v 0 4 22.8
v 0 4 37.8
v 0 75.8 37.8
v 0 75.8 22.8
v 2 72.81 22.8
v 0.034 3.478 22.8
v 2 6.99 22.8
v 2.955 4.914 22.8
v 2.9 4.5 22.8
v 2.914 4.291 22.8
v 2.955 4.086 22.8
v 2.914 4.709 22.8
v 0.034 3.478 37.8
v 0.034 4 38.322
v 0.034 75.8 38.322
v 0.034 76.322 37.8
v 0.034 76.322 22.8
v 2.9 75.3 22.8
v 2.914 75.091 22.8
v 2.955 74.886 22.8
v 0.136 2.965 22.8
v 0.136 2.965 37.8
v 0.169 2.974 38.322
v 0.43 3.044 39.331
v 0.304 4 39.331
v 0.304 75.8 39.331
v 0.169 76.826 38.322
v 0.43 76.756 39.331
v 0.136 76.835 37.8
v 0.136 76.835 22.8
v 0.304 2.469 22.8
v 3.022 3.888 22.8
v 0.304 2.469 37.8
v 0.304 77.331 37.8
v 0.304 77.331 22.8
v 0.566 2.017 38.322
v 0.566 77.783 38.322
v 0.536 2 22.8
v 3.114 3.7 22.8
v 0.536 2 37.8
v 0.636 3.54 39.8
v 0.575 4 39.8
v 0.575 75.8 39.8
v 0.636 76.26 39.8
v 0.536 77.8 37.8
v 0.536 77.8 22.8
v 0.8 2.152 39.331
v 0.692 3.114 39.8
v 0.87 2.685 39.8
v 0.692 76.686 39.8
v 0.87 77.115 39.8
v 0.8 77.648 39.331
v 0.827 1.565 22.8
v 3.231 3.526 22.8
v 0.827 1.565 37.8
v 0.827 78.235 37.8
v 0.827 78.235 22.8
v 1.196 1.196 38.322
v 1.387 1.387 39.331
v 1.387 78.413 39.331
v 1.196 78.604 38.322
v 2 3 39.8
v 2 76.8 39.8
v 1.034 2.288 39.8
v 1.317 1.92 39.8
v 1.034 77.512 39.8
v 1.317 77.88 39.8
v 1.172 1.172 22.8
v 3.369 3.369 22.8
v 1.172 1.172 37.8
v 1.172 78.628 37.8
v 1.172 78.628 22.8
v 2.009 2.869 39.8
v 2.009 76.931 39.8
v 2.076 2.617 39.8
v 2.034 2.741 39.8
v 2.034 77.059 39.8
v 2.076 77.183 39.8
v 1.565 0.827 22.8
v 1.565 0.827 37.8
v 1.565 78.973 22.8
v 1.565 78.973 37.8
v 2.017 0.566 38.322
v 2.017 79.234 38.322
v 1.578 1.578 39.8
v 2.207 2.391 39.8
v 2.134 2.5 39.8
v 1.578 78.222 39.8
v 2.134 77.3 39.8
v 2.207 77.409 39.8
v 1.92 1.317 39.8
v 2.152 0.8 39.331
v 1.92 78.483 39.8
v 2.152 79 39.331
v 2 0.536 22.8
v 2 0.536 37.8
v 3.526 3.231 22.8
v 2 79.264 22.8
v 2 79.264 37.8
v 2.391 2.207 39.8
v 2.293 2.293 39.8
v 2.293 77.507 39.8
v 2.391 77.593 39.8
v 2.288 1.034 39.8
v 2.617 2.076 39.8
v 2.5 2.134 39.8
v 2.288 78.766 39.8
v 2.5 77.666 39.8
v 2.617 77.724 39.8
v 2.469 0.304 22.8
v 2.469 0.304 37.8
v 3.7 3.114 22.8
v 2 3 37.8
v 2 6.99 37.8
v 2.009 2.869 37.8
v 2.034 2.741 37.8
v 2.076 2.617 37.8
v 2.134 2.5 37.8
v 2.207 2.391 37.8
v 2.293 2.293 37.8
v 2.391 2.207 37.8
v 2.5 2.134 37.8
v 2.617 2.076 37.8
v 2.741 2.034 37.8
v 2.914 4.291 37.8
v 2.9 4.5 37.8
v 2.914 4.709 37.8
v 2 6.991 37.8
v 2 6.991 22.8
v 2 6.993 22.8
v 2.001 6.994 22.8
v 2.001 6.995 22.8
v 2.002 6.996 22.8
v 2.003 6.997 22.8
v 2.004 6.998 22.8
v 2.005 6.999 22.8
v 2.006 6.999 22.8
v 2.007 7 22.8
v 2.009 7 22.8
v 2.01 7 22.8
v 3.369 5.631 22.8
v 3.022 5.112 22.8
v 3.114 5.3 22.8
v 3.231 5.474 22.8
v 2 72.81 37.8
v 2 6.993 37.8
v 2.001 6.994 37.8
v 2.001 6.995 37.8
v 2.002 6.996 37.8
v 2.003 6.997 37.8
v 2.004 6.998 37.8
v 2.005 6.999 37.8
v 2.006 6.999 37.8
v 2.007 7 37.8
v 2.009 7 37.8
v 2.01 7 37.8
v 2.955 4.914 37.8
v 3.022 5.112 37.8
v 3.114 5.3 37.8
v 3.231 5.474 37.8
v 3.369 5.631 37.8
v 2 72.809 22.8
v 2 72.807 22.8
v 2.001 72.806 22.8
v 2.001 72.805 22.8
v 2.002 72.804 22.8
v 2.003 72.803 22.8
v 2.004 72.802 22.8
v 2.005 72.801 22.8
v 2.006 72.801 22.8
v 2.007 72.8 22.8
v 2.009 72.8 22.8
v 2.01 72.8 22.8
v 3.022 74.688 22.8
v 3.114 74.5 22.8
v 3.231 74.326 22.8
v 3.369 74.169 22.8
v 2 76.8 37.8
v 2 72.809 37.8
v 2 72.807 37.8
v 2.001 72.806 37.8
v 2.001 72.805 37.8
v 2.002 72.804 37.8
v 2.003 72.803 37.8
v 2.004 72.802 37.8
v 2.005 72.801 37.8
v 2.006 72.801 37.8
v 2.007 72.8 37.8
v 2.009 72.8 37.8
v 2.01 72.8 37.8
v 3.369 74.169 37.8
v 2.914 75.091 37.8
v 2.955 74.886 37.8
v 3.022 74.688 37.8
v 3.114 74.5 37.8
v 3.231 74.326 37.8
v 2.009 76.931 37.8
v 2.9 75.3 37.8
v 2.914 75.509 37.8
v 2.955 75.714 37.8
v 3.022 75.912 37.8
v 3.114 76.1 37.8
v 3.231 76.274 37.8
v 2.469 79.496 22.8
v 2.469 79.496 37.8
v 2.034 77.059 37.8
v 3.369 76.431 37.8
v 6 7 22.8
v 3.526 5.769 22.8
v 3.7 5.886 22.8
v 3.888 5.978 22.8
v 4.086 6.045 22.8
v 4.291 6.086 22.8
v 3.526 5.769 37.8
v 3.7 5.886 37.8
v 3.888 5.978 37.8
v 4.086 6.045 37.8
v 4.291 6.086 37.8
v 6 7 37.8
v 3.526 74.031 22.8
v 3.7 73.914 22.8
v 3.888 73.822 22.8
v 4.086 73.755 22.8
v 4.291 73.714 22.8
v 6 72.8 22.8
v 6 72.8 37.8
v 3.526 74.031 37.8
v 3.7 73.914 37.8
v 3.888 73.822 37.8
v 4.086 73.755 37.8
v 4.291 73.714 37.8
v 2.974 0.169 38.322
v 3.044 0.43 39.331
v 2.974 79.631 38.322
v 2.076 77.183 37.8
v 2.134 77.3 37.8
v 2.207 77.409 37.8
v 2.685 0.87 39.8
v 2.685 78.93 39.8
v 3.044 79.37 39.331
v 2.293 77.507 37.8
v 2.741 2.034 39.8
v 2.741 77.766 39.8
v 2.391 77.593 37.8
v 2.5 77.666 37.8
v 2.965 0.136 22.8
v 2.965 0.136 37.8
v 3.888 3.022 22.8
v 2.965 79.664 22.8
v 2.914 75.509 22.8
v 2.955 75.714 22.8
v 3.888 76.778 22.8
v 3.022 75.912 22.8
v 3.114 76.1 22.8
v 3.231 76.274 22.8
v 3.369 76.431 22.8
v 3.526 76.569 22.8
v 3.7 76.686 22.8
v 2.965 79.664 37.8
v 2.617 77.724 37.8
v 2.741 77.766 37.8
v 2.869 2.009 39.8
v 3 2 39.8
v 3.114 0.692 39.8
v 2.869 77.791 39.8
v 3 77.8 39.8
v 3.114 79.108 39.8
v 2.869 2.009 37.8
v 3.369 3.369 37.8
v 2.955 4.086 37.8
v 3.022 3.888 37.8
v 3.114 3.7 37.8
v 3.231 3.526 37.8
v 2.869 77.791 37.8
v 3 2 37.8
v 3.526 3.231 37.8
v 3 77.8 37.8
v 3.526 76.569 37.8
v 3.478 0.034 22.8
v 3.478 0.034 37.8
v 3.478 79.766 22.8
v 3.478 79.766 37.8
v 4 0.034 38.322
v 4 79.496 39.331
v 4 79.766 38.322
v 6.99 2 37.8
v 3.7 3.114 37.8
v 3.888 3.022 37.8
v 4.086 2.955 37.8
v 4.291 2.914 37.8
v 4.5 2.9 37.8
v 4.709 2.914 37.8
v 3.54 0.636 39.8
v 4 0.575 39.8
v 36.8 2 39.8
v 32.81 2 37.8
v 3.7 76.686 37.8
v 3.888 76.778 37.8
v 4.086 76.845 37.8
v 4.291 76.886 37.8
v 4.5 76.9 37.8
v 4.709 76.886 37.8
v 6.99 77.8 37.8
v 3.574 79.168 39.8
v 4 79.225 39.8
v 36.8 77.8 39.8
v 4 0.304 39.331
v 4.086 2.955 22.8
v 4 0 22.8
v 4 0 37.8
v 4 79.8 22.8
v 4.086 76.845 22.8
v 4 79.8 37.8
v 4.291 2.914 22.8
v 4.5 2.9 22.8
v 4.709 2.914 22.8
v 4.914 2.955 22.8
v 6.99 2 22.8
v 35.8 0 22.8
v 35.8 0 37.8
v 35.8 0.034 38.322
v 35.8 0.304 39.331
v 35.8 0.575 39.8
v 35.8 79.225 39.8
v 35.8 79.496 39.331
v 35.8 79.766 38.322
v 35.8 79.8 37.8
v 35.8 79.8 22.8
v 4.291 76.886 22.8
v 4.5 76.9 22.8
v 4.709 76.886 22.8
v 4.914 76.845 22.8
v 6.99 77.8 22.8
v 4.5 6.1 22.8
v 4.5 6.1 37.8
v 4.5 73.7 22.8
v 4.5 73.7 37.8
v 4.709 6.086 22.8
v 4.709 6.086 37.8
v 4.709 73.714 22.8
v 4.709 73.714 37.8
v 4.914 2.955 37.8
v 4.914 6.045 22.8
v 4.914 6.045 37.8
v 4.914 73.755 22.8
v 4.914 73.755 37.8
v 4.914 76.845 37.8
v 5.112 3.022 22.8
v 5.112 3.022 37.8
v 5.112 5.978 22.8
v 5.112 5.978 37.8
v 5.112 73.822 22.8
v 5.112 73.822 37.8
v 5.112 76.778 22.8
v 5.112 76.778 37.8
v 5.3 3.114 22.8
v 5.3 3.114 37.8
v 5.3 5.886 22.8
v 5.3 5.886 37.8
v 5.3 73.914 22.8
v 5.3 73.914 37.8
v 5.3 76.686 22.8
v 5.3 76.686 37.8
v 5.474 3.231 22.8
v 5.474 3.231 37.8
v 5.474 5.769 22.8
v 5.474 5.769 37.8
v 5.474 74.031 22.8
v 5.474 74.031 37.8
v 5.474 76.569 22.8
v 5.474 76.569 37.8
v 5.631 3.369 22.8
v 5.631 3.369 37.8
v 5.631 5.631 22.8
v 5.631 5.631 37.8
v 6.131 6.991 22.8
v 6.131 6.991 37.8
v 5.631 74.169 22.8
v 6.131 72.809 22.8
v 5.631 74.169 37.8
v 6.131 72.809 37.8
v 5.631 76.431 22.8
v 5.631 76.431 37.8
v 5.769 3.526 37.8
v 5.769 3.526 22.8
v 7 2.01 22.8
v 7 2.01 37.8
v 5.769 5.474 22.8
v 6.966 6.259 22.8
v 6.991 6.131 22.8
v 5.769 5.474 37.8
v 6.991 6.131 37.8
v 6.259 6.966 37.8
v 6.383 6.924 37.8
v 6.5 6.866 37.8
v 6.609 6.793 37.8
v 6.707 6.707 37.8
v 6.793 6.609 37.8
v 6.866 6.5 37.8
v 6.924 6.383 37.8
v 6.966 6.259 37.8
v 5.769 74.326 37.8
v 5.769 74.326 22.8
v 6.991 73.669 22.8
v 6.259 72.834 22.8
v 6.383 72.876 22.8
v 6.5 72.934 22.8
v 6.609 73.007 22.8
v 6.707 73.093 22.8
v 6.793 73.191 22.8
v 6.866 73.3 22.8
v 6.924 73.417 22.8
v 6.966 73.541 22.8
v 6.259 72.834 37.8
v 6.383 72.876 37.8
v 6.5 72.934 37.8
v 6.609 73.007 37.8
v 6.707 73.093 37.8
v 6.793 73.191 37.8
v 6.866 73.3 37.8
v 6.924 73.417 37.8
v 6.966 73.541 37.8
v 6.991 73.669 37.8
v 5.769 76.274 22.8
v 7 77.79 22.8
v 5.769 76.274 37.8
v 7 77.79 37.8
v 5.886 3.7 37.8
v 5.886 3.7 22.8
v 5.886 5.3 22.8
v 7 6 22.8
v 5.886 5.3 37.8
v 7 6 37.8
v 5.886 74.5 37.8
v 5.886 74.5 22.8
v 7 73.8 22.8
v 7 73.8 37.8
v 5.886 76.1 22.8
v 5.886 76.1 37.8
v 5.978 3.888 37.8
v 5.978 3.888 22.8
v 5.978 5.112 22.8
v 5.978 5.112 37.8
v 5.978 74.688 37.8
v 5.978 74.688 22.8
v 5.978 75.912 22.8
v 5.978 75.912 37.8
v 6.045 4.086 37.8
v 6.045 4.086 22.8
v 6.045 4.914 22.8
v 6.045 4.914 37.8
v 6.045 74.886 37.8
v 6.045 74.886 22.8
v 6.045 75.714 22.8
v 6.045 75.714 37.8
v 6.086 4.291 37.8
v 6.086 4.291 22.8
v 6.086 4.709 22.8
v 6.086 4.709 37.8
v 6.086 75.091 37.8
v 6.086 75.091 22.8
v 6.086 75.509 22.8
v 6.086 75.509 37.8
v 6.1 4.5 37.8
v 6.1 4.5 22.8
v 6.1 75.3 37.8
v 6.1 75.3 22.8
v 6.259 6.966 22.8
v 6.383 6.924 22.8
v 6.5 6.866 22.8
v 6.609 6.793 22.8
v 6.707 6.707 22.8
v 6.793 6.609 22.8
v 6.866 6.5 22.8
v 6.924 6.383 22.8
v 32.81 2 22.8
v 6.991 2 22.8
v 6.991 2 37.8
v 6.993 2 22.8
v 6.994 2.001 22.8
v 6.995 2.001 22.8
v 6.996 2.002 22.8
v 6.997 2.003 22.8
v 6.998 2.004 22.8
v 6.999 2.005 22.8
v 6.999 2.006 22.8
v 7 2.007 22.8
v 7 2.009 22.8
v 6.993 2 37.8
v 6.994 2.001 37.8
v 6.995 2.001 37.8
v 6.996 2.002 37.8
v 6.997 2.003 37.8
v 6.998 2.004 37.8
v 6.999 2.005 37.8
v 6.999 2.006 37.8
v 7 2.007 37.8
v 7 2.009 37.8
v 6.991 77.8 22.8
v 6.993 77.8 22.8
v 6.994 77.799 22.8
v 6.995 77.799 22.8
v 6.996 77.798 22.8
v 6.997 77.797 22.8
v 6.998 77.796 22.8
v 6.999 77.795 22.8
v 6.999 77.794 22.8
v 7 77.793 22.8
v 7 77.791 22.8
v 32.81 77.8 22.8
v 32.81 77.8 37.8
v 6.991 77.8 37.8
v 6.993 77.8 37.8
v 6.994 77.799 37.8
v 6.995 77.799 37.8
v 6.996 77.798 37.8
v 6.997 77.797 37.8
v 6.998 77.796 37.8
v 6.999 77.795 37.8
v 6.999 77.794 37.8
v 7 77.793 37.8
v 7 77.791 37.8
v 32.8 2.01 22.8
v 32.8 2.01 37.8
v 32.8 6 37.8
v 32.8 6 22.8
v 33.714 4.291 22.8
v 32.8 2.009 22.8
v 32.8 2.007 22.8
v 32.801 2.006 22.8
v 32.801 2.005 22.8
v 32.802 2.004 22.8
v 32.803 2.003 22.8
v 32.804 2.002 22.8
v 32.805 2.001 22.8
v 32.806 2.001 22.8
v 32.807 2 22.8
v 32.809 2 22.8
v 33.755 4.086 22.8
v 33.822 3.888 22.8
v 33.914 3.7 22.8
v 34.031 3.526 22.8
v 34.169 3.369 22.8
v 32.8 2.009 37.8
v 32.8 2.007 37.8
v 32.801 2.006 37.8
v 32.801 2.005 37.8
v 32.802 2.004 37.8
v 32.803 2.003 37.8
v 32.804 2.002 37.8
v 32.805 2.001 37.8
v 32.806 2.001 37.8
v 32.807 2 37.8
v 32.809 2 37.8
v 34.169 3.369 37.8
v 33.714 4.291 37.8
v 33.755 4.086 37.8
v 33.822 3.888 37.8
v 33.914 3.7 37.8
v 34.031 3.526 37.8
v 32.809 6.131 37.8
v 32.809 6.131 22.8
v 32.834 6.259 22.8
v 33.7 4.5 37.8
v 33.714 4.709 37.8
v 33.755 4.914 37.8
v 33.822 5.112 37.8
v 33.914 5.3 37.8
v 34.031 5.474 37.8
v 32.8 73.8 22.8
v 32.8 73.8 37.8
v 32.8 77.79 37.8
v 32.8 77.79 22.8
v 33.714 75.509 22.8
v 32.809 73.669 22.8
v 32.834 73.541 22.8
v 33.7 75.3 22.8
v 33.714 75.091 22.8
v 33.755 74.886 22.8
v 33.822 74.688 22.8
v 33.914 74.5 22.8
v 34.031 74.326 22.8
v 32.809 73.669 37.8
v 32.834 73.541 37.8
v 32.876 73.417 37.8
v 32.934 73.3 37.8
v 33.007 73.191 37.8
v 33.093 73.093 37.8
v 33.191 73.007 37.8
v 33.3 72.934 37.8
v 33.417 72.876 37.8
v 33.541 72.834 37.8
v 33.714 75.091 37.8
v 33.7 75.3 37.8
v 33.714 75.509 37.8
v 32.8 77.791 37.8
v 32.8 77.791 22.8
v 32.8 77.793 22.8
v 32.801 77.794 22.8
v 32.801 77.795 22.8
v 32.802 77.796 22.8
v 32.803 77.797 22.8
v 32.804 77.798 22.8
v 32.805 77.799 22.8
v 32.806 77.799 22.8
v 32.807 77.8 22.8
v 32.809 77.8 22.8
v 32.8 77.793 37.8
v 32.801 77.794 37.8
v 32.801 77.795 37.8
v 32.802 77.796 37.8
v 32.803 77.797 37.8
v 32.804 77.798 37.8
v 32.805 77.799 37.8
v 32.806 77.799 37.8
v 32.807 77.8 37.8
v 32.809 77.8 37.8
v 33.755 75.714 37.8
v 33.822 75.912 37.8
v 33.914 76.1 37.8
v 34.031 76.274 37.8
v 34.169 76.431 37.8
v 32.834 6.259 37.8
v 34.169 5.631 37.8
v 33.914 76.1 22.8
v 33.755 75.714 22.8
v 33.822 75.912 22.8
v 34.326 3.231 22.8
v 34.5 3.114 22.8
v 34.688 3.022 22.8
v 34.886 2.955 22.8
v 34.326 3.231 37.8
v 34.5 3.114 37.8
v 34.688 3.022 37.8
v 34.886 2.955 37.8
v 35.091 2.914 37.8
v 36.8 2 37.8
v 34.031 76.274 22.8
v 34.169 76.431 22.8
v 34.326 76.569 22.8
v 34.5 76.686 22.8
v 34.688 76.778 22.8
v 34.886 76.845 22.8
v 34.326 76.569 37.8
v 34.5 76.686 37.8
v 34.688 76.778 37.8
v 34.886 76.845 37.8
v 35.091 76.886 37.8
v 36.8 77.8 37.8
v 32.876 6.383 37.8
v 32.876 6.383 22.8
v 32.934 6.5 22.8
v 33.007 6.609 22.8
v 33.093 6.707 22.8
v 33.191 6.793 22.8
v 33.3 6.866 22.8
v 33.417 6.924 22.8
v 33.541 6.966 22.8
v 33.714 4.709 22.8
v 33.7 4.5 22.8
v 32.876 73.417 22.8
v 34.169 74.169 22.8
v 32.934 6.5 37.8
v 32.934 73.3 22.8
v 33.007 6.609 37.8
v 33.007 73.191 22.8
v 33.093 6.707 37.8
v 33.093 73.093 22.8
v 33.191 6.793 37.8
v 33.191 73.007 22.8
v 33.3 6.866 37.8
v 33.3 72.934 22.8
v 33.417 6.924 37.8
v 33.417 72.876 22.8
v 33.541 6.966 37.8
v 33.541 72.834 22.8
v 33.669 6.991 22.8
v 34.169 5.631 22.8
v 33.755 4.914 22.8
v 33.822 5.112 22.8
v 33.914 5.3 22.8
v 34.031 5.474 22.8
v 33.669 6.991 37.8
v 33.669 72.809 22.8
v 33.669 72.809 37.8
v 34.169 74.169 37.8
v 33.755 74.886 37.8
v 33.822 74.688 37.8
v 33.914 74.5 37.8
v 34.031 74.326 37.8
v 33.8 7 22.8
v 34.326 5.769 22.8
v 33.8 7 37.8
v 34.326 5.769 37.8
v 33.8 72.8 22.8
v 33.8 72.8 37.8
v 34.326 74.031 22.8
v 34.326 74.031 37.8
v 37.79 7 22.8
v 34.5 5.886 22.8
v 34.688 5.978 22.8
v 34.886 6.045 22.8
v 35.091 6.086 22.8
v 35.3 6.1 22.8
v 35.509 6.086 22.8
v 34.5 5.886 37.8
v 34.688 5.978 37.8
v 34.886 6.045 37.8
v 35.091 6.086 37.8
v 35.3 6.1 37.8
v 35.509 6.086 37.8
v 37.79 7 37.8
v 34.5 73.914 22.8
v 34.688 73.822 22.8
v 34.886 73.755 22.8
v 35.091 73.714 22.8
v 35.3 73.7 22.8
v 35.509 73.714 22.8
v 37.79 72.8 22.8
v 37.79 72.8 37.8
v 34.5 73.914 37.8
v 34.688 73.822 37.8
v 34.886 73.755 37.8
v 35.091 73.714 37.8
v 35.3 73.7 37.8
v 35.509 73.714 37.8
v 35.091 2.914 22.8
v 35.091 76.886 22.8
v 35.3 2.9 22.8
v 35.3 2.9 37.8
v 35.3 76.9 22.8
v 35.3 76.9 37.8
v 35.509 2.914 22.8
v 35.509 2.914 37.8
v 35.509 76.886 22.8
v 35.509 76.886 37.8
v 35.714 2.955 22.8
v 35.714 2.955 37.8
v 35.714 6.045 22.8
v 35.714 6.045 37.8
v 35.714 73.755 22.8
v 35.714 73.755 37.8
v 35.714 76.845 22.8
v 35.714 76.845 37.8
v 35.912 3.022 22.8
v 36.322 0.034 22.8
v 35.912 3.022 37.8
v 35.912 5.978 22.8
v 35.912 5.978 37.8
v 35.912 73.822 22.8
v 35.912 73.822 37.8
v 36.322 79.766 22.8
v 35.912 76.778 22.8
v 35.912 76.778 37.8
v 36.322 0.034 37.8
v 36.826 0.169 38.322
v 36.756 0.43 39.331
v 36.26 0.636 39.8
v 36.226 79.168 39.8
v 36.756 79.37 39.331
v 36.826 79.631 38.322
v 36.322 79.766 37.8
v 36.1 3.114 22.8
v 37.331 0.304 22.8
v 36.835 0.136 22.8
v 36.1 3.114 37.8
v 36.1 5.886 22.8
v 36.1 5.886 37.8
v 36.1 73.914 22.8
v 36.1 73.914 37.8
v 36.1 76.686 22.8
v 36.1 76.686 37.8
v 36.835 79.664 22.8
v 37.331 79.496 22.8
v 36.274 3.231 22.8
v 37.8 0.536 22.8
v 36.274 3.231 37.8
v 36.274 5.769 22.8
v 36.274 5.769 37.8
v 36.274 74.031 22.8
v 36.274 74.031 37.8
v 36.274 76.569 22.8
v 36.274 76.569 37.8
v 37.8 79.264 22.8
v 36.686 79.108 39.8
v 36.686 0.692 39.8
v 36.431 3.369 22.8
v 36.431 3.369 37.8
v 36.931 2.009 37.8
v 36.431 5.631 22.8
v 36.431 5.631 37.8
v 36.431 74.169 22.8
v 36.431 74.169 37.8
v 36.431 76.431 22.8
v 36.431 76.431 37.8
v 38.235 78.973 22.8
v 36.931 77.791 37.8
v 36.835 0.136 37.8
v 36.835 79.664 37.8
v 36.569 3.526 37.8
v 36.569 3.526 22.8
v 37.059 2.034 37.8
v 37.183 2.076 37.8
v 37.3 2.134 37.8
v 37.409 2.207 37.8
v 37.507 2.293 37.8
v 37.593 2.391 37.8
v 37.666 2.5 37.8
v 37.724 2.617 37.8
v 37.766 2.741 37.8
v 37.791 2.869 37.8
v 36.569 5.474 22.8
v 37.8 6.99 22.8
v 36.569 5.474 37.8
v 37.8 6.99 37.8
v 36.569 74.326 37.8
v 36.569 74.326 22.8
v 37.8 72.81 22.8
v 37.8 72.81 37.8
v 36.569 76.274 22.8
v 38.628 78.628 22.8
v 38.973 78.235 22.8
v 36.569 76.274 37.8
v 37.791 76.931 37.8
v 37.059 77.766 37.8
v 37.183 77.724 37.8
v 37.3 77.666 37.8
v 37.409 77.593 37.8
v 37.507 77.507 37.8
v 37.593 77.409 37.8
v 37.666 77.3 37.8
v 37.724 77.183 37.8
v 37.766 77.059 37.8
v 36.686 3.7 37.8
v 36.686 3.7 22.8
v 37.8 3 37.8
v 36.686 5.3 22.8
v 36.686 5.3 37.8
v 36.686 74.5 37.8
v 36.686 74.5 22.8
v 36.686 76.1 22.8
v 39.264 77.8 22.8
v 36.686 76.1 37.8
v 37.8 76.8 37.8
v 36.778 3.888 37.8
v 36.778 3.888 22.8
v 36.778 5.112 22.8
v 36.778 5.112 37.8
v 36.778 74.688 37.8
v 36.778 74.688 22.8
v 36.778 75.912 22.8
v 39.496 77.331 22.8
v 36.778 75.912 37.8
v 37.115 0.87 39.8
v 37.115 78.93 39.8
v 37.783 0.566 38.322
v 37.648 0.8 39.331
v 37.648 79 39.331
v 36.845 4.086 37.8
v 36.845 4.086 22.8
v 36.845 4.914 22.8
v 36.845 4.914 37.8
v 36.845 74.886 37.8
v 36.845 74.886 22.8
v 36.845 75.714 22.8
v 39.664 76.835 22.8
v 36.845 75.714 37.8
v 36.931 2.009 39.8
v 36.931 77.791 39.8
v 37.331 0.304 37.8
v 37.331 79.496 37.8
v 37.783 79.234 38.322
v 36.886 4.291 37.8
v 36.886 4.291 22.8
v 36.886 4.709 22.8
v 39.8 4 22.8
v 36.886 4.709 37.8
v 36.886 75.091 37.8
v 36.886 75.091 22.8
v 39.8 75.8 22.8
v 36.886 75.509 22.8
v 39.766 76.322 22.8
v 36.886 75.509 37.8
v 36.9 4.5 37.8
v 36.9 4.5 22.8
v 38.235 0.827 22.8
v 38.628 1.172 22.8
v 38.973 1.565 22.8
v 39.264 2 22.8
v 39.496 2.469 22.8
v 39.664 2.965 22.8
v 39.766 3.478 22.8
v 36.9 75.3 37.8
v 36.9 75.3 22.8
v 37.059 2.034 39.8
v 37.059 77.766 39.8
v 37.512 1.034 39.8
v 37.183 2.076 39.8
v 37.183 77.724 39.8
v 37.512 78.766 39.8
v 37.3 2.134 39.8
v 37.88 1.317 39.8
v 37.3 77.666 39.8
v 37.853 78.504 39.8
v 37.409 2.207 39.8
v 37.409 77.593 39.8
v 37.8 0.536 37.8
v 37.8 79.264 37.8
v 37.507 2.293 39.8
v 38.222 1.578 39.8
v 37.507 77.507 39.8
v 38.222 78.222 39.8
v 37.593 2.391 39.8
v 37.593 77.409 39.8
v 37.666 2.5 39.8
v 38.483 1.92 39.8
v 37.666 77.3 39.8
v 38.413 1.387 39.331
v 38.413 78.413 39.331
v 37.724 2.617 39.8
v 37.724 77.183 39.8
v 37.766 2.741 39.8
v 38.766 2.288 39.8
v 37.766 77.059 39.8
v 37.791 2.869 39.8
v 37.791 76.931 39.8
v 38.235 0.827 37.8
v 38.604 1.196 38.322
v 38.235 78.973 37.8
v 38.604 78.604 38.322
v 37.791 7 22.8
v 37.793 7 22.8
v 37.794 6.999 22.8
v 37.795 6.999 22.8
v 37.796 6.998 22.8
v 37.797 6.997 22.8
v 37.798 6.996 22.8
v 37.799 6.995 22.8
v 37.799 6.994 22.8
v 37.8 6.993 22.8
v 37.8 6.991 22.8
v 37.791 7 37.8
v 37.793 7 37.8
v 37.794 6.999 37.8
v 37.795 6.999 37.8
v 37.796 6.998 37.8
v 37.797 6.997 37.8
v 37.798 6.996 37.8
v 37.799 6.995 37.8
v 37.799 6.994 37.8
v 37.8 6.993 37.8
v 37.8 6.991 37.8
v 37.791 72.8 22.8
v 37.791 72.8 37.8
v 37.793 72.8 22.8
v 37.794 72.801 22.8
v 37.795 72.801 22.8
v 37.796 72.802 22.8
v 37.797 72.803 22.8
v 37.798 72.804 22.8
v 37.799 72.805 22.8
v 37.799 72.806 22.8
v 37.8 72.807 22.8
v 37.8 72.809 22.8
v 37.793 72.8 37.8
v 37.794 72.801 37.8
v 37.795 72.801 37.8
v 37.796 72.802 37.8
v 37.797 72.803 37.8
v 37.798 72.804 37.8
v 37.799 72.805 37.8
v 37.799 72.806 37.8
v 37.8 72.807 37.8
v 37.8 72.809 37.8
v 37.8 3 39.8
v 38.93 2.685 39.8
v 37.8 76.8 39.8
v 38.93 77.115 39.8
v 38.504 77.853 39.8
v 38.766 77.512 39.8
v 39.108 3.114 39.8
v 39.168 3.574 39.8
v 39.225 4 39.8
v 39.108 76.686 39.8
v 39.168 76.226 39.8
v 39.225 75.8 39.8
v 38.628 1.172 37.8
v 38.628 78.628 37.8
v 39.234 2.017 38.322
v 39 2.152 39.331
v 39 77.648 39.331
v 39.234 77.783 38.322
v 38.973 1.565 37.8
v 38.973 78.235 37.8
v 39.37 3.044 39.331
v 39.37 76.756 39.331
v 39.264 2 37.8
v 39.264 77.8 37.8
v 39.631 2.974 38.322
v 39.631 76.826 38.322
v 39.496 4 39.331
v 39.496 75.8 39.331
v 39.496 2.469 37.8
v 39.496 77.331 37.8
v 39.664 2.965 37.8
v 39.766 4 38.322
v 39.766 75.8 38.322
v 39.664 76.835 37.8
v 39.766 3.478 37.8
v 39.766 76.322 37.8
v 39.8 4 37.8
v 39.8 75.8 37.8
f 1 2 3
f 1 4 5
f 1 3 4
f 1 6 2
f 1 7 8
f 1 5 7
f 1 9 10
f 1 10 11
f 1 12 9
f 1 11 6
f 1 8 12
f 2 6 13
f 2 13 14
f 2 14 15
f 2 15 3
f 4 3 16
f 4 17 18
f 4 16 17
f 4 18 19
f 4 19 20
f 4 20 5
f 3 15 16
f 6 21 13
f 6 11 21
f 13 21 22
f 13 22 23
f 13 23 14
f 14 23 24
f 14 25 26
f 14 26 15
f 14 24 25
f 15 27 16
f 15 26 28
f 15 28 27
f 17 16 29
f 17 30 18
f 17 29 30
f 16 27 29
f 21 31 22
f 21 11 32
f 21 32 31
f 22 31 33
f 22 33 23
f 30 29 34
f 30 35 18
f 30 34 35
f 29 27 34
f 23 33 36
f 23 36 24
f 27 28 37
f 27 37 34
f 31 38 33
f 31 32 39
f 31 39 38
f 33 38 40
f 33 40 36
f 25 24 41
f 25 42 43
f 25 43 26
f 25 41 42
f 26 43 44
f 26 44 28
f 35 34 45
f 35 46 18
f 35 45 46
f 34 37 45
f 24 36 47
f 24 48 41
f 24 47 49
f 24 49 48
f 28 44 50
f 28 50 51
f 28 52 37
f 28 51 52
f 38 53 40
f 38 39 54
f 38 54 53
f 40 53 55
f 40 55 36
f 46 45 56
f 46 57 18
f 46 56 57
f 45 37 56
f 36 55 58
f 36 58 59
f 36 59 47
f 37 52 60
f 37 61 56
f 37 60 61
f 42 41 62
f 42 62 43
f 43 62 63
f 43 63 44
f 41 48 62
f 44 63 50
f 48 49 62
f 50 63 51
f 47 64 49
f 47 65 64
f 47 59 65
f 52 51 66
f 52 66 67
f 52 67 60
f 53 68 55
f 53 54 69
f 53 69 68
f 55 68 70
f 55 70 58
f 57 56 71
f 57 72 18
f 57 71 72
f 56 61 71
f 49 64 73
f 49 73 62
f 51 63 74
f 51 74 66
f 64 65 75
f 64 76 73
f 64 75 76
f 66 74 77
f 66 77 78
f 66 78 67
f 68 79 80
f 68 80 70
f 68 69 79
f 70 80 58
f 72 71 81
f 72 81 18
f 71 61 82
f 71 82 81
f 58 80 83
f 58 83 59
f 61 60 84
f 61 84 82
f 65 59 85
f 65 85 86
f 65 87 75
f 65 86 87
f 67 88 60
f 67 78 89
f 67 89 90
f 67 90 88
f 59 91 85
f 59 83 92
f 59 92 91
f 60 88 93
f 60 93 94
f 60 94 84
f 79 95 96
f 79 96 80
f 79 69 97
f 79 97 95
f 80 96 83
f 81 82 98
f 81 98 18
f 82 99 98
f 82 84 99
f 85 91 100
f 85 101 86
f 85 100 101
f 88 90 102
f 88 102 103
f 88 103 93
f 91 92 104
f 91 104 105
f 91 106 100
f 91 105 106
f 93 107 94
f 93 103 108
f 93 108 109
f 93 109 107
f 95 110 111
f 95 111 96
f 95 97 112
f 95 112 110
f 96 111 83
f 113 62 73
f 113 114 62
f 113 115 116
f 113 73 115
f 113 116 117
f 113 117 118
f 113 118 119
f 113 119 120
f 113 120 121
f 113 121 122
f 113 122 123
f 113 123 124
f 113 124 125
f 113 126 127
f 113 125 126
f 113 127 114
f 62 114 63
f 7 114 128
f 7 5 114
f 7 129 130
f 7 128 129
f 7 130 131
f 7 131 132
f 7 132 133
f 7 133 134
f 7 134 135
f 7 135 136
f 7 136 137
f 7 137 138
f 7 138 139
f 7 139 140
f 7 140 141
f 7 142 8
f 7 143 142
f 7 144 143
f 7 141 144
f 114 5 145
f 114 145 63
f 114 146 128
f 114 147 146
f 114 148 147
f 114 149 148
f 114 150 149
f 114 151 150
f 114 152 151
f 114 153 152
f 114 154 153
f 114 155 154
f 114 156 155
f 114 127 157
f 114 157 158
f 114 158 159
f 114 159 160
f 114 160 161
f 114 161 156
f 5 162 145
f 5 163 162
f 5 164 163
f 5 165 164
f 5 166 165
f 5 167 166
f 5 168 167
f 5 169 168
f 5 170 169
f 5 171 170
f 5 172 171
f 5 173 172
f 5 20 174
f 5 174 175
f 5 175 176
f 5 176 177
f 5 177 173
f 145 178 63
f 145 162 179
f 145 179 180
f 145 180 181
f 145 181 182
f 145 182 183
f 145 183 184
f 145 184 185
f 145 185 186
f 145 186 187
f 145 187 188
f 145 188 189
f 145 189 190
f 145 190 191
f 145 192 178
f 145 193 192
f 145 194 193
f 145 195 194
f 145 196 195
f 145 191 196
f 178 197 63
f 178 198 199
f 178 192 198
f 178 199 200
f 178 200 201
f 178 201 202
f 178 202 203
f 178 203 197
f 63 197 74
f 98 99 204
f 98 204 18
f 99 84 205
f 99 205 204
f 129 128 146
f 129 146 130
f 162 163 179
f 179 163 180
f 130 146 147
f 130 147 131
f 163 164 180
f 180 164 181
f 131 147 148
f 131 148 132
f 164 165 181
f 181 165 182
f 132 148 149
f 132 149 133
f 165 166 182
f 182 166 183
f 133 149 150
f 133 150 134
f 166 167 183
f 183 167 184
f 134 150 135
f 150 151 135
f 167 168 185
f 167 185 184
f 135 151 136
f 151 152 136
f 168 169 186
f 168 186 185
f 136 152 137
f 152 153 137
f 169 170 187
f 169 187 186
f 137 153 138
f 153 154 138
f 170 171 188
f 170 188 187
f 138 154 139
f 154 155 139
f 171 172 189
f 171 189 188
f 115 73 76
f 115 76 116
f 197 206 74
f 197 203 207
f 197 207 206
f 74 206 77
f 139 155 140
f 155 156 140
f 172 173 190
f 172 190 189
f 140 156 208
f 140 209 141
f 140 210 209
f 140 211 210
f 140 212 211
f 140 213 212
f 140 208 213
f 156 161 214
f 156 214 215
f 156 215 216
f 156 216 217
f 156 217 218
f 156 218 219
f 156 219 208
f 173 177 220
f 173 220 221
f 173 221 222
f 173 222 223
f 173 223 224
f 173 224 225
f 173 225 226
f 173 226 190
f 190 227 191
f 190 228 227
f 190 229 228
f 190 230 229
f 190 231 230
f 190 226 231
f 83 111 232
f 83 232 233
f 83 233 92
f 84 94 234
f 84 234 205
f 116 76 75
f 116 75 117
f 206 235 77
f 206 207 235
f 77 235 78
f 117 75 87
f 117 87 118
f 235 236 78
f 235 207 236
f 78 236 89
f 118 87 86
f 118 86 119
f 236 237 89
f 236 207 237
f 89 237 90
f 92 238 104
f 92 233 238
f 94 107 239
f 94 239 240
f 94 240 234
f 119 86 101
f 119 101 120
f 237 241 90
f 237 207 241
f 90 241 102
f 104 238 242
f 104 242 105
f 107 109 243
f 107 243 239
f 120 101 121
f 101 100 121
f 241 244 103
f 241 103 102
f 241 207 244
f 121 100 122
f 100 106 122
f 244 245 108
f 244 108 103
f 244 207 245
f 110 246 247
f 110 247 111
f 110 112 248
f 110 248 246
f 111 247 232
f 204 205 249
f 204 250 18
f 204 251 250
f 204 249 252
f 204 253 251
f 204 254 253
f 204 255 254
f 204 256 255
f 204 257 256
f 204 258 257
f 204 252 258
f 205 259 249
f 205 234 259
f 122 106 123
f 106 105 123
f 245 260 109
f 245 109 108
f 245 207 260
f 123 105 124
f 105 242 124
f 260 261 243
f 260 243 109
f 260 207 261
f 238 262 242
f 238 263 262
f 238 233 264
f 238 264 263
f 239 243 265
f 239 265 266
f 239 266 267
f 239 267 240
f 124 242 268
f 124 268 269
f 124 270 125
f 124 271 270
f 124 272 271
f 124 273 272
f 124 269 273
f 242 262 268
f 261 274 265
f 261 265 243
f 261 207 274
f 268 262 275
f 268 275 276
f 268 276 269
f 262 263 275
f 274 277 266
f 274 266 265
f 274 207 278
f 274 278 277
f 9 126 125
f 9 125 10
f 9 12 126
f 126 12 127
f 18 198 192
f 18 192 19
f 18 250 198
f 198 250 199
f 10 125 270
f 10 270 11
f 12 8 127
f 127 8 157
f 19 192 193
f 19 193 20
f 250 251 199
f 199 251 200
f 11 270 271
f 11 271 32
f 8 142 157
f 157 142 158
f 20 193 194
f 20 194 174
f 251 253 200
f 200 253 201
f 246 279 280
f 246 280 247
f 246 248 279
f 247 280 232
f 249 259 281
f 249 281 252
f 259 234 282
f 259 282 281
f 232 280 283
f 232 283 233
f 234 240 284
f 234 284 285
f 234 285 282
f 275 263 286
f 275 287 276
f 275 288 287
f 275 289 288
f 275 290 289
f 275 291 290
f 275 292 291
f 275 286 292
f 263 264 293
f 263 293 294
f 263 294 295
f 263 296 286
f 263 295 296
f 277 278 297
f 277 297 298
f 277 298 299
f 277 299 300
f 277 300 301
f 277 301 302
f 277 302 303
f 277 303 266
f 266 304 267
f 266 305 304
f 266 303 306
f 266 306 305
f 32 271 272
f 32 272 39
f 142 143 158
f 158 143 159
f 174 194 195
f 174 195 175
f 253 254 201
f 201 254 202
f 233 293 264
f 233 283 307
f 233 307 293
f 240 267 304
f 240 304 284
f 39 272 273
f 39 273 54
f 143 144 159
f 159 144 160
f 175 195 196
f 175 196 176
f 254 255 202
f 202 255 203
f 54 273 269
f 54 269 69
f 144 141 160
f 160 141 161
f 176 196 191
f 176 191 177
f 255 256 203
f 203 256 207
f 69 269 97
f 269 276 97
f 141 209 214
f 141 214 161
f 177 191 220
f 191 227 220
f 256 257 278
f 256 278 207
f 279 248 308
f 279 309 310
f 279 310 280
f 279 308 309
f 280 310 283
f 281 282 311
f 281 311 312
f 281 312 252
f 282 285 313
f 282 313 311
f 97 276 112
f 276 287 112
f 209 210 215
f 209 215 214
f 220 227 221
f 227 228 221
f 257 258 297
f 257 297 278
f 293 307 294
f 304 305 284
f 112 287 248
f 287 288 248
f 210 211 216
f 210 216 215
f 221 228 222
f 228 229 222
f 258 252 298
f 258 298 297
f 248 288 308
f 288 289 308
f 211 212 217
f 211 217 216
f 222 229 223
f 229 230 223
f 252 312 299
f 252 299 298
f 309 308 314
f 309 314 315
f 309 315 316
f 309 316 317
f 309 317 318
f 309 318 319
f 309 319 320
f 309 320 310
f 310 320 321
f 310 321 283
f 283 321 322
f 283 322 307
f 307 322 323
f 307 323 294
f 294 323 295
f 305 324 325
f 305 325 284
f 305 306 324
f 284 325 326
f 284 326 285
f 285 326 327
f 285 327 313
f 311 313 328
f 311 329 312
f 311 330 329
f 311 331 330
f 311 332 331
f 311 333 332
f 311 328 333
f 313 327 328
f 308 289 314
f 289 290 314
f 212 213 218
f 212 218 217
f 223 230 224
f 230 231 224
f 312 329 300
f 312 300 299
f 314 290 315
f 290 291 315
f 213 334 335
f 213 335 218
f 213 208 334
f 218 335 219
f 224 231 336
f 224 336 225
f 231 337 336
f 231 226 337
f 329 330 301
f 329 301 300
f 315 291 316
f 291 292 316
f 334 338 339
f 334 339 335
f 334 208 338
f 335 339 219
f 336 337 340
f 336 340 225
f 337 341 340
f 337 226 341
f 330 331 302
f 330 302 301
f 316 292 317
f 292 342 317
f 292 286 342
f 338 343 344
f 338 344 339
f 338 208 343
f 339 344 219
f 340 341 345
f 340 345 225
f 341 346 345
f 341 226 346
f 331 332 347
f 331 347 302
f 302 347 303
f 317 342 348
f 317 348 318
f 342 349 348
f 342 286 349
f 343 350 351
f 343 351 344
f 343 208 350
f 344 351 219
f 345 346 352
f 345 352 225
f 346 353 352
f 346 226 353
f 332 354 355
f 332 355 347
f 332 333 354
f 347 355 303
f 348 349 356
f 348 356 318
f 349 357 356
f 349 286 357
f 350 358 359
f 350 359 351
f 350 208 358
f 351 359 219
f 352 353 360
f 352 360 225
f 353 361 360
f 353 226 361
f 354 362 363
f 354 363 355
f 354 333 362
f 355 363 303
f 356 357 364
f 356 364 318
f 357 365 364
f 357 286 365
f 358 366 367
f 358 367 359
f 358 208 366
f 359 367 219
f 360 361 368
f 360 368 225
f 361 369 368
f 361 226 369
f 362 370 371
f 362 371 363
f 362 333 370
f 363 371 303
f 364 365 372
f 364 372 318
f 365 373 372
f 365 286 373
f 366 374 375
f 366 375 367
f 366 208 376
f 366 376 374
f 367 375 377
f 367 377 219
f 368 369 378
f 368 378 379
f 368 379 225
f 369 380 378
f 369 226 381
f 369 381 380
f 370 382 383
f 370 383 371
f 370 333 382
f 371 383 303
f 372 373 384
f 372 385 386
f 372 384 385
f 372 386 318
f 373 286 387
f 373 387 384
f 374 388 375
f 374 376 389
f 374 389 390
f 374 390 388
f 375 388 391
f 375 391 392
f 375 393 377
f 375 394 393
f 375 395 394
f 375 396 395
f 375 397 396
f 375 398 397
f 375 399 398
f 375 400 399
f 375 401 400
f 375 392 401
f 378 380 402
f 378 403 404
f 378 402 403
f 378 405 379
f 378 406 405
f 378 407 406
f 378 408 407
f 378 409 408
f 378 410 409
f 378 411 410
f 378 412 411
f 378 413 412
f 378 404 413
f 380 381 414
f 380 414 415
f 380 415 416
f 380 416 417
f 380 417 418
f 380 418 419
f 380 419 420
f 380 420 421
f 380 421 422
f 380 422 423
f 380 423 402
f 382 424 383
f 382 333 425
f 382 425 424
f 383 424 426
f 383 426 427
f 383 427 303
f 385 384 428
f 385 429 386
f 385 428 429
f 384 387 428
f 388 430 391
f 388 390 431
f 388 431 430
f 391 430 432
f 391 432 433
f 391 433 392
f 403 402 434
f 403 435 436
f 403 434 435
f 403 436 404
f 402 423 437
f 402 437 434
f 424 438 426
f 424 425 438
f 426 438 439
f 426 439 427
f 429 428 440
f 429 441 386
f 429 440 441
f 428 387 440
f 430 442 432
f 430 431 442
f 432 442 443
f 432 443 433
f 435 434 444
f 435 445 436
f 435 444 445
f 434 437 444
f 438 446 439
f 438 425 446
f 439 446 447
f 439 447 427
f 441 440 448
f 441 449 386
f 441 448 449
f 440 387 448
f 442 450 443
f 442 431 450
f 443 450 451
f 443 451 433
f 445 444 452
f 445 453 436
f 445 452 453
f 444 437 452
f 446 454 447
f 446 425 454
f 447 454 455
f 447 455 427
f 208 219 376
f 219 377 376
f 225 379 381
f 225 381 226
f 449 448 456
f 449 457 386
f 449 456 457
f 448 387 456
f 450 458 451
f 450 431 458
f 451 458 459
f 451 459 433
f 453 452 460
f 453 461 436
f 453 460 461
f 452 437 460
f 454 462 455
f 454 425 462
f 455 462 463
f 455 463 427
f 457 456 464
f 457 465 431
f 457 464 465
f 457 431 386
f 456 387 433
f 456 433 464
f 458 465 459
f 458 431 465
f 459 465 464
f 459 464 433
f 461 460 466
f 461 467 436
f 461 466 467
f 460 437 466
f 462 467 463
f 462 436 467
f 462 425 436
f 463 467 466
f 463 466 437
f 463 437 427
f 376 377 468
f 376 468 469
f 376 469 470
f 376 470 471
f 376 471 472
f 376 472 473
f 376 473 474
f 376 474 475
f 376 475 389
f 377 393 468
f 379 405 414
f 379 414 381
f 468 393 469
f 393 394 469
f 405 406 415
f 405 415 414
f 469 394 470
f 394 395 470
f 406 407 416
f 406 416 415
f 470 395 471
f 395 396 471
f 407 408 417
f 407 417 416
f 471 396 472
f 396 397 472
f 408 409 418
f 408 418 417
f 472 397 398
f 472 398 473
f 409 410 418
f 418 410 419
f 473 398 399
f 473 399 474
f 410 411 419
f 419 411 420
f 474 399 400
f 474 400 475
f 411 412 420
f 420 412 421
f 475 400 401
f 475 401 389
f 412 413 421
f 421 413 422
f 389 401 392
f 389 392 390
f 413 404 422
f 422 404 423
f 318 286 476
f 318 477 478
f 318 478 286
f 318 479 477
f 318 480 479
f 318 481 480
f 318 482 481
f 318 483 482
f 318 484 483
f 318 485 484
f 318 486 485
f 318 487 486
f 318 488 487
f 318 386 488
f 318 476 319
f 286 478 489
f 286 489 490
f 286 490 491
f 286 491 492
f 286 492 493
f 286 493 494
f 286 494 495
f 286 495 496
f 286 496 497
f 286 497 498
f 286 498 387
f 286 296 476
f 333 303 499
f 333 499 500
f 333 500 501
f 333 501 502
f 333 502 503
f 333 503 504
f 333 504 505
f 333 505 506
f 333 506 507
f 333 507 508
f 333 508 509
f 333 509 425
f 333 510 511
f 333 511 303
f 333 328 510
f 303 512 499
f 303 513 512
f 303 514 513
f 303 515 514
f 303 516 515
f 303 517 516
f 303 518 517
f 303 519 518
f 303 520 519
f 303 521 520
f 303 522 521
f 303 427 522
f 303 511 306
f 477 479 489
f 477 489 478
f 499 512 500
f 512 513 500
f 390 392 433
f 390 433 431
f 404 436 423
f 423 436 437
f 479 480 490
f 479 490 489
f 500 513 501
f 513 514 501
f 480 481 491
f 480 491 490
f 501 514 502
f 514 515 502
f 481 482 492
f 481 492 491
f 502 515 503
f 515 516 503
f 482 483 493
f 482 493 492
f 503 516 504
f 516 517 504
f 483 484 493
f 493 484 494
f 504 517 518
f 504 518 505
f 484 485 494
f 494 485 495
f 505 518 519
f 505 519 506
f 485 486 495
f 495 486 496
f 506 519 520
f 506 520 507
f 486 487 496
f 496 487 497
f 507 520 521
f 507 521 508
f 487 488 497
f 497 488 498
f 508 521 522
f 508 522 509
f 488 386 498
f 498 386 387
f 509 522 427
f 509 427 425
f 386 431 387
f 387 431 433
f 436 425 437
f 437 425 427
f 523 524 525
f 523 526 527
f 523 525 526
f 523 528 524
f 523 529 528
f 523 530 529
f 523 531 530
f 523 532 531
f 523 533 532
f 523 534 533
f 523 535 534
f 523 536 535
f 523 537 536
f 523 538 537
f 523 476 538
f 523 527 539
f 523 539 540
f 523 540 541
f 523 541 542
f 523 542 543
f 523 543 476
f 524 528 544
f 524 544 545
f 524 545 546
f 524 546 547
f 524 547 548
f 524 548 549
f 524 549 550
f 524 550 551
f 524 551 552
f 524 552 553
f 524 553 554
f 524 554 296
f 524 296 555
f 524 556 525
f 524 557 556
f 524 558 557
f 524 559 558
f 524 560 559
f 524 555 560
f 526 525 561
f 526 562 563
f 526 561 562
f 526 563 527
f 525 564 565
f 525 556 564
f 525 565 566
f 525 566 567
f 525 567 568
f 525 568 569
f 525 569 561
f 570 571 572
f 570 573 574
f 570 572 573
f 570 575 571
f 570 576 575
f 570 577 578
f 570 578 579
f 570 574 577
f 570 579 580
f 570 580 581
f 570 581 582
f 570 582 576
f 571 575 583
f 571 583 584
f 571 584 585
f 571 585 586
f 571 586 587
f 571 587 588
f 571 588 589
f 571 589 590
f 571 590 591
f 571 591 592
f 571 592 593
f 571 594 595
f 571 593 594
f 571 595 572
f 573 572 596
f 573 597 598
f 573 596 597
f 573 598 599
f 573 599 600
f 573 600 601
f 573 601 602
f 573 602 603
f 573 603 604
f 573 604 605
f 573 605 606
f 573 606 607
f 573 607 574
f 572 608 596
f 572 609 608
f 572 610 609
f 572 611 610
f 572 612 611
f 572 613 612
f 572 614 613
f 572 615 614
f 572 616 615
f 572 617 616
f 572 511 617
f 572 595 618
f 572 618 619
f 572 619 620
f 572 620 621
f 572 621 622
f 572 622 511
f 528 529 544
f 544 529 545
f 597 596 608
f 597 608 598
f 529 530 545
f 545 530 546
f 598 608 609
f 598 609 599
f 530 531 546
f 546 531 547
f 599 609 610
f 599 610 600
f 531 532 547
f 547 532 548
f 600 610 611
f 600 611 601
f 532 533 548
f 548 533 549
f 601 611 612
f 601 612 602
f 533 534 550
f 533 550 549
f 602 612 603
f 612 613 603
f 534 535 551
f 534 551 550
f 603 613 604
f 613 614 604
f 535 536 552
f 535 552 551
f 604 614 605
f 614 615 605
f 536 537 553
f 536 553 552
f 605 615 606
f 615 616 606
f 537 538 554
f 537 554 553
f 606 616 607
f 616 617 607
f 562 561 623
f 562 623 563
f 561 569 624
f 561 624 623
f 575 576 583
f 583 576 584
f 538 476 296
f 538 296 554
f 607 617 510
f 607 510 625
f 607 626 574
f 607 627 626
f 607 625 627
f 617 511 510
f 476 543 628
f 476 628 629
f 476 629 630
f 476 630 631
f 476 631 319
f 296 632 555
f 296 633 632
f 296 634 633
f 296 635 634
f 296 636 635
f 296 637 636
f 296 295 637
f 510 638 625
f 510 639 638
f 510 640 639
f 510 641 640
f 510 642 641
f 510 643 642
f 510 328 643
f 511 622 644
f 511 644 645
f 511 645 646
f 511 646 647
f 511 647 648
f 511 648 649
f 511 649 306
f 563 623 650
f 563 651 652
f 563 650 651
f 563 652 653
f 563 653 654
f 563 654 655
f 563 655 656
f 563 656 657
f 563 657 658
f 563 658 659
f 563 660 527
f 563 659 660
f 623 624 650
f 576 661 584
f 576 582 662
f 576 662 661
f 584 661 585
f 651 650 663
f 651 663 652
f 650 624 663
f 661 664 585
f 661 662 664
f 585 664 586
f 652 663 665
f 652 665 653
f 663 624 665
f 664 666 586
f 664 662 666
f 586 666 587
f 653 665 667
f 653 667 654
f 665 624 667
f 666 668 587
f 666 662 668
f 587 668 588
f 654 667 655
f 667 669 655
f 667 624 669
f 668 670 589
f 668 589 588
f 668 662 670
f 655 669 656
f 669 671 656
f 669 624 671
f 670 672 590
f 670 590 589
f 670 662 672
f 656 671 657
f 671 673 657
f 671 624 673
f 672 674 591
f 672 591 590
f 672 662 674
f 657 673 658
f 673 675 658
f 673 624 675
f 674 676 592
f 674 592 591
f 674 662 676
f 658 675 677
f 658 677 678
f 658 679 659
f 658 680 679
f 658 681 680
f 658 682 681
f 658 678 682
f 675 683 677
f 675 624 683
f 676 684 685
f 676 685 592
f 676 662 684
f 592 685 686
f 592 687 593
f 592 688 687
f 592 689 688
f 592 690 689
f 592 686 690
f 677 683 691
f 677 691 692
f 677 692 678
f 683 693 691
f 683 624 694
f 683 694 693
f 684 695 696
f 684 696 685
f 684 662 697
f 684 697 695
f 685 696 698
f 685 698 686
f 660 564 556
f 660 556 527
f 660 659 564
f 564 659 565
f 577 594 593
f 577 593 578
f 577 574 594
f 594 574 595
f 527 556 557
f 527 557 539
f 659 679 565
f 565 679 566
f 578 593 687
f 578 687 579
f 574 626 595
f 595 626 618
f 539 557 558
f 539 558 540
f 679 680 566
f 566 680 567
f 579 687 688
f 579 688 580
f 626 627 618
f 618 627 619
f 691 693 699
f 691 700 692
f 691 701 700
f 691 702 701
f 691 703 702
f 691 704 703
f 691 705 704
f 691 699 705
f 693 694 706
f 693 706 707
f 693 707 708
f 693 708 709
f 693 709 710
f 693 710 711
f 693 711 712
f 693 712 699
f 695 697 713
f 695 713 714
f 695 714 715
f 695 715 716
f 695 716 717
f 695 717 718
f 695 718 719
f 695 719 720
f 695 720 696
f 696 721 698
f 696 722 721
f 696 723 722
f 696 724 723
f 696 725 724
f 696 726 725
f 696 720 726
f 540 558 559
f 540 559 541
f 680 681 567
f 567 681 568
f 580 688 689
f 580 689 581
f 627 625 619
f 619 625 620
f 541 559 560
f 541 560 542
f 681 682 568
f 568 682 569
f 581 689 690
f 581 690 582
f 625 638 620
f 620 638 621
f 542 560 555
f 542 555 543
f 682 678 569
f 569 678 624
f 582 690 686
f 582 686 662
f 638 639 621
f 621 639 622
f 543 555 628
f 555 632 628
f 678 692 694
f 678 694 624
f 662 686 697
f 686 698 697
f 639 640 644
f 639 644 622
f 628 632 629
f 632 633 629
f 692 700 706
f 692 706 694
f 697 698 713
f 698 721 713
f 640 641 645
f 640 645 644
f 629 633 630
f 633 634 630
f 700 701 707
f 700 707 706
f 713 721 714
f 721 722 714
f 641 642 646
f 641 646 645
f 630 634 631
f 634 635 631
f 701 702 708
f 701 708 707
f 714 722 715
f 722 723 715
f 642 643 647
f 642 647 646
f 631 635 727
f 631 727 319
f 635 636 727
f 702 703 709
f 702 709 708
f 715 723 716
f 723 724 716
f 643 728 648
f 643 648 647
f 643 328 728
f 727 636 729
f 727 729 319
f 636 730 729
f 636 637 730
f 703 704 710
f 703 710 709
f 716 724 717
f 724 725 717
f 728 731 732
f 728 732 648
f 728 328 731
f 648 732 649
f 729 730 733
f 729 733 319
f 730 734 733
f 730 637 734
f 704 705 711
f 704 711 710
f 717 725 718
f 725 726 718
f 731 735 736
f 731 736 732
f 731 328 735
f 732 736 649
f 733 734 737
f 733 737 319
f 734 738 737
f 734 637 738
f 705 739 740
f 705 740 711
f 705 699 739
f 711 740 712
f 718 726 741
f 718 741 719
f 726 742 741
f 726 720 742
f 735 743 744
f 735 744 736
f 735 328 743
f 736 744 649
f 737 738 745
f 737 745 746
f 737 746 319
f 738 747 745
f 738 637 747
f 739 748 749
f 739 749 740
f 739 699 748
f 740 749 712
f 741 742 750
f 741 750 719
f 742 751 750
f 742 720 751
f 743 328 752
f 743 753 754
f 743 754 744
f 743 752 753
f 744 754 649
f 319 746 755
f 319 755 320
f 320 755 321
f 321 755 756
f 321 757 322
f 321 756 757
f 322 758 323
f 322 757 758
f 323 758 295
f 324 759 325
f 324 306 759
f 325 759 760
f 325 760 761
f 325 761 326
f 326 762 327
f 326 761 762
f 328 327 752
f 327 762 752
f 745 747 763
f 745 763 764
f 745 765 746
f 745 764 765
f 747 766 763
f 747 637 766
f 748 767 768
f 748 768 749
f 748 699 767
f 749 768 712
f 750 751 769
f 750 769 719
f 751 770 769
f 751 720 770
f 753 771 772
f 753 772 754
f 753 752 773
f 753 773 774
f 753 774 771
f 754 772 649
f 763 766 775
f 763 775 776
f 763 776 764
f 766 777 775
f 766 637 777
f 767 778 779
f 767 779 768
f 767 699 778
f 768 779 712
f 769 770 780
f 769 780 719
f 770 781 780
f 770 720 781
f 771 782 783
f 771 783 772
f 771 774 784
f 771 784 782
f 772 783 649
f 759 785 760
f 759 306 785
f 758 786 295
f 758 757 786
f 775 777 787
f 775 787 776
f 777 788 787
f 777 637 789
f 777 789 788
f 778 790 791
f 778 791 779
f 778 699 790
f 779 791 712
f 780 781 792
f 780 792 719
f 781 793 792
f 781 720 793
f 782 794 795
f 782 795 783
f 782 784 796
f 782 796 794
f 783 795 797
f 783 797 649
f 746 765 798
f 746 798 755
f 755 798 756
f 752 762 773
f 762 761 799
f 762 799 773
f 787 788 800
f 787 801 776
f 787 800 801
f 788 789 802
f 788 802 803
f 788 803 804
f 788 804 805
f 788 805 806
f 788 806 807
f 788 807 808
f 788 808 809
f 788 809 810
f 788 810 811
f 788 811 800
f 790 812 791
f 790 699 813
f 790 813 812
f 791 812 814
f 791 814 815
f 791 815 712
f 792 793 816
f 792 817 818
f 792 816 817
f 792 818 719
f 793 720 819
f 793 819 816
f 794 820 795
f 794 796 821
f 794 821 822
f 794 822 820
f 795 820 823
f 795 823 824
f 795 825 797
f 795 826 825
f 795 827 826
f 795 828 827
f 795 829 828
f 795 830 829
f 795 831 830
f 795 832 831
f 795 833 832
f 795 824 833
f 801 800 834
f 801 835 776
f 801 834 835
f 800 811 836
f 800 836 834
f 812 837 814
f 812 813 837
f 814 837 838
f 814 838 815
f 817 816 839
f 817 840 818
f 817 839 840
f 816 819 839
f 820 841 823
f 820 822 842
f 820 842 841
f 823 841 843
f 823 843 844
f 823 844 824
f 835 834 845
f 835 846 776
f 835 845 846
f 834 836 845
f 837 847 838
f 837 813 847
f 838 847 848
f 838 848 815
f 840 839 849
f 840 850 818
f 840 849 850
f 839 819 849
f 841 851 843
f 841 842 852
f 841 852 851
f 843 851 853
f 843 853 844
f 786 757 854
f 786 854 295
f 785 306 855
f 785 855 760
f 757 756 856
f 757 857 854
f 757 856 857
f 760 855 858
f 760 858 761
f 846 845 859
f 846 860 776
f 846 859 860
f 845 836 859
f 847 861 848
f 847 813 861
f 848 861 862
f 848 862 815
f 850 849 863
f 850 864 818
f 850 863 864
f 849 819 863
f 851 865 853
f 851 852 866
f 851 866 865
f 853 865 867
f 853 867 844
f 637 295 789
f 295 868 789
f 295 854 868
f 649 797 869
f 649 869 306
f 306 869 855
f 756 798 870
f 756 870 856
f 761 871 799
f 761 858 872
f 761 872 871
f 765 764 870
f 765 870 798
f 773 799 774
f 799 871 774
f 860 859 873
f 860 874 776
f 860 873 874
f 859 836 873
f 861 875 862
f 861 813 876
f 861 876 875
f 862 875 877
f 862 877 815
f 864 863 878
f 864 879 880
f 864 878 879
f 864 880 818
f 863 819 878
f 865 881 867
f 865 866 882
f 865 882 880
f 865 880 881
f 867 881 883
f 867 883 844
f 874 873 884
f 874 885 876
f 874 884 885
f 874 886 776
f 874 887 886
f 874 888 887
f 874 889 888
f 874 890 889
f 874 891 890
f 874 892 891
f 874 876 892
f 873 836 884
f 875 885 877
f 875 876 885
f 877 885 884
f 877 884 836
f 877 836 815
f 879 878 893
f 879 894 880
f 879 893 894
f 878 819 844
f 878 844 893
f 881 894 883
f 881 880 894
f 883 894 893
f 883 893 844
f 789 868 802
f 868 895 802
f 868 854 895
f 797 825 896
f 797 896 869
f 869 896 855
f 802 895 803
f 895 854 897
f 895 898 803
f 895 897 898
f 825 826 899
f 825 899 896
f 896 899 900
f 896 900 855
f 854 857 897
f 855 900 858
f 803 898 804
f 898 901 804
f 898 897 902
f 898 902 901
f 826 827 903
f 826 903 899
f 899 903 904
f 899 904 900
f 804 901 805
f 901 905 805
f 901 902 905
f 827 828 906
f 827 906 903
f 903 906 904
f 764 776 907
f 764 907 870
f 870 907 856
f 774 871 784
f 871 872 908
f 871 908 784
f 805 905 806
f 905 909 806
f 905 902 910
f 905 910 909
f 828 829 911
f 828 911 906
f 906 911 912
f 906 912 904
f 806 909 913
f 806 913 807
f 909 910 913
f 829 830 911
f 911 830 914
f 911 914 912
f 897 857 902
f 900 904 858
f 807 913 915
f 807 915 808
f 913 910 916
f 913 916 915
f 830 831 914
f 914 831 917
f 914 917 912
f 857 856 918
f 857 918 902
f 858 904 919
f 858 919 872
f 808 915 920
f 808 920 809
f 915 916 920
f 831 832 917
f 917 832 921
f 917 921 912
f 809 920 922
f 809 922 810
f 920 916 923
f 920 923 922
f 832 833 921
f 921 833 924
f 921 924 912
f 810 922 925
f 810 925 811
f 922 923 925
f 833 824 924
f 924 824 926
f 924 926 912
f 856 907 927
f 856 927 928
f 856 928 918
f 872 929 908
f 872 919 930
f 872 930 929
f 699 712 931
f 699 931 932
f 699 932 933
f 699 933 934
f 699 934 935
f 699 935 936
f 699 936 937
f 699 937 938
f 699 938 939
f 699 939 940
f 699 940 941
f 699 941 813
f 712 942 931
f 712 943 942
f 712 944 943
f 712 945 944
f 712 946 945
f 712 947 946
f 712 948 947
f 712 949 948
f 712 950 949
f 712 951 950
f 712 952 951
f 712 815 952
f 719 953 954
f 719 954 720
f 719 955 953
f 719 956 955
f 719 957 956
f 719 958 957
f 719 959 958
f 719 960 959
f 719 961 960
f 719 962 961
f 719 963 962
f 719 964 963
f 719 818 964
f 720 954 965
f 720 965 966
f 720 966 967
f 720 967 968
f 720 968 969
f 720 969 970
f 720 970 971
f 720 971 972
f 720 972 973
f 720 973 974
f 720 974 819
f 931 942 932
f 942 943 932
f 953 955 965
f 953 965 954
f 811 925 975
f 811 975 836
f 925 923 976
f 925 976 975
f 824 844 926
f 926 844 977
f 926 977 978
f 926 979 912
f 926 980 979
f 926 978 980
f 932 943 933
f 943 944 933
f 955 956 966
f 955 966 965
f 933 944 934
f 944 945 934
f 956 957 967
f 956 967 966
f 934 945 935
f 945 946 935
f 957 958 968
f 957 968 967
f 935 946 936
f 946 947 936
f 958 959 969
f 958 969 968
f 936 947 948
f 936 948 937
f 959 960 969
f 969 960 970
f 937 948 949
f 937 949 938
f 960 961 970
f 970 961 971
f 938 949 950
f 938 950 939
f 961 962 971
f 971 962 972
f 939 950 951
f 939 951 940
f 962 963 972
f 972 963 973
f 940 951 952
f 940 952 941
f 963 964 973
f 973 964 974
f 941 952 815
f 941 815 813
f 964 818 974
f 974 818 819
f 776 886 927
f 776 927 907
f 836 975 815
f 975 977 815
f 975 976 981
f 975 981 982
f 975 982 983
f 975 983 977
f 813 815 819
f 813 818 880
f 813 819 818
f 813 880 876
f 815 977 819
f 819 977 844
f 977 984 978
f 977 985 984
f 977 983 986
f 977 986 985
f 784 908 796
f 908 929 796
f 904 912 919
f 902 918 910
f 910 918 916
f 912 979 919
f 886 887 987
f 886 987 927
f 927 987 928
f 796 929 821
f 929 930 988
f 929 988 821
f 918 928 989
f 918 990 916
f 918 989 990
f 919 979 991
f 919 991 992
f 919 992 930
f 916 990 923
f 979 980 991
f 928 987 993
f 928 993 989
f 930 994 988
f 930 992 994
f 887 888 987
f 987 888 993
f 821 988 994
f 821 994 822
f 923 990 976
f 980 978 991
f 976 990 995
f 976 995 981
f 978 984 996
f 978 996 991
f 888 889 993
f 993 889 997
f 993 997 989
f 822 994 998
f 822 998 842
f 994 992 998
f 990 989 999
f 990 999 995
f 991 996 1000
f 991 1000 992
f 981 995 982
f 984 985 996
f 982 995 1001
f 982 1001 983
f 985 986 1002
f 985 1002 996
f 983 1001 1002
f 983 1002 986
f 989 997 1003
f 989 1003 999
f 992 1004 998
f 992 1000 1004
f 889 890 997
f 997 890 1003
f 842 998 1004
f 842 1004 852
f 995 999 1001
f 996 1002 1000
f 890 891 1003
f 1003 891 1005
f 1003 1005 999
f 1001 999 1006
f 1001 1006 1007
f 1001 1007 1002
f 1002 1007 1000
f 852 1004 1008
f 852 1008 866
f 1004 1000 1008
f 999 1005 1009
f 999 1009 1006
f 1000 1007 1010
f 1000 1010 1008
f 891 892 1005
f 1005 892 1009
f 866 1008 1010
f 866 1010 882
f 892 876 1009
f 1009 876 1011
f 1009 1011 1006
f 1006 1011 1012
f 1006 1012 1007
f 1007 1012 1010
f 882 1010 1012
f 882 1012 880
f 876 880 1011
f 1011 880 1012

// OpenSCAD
// Dilder Top Cover v3 — open border frame with rounded inner corners for flush plate seating
//
// No dome, no floor — just the perimeter wall ring + 4 corner pillar posts.
// Solid border all around (no wire notch).
// Inner corners and countersink pocket are rounded to match the windowed plate's corner radius,
// allowing it to slide in flush at the pillar junctions.
//
// Export:
//   openscad -o top-cover-v3.3mf top-cover-v3.scad

$fn = 48;

// ---- Board (Olimex ESP32-S3-DevKit-Lipo) ----
board_len      = 56;
board_wid      = 28;
antenna_proj   = 6;

// ---- Waveshare 2.13" display ----
disp_len       = 65;
disp_wid       = 30;
disp_thk       = 5;

// ---- 1000 mAh battery ----
bat_len        = 52;
bat_wid        = 35;

// ---- Enclosure geometry ----
wall_thk       = 2;
plate_thk      = 2;
pillar         = 5;
slop           = 0.4;
bat_chamber_h  = 6;
disp_clear     = 1;
board_thk      = 1.6;
wroom_h        = 3.2;
top_gap        = 15;       // +10mm height

screw_clr      = 3.2;

// ---- Rounding ----
case_corner_r  = 4;
plate_corner_r = 1;       // must match windowed plate's corner radius
top_edge_r     = 2;       // top edge bullnose radius

// ---- Z layout ----
z_base_top     = plate_thk;
z_mid_bot      = z_base_top + bat_chamber_h;
z_mid_top      = z_mid_bot + plate_thk;
z_board_bot    = z_mid_top;
z_board_top    = z_board_bot + board_thk;
z_wroom_top    = z_board_top + wroom_h;
z_disp_bot     = z_wroom_top + disp_clear;
z_disp_top     = z_disp_bot + disp_thk;
base_wall_top  = z_disp_top + plate_thk;
z_cover_bot    = base_wall_top;
cover_h        = plate_thk + top_gap;

// ---- XY layout ----
inner_wid      = max(board_wid, disp_wid, bat_wid) + 2 * slop;
inner_len      = max(board_len + antenna_proj, disp_len + 2 * pillar, bat_len) + 2 * slop;
outer_wid      = inner_wid + 2 * wall_thk;
outer_len      = inner_len + 2 * wall_thk;

pillar_xy = [
    [wall_thk,                             wall_thk                            ],
    [outer_wid - wall_thk - pillar,        wall_thk                            ],
    [wall_thk,                             outer_len - wall_thk - pillar       ],
    [outer_wid - wall_thk - pillar,        outer_len - wall_thk - pillar       ],
];


// ============== SHARED ==============

module rounded_v_box(w, l, h, r, fn = 48) {
    hull() {
        for (x = [r, w - r])
            for (y = [r, l - r])
                translate([x, y, 0])
                    cylinder(r = r, h = h, $fn = fn);
    }
}

// Pillar with only one corner rounded (the exposed inner corner).
// round_x/round_y: 0=near edge, 1=far edge — selects which corner gets the radius.
module pillar_one_round(w, l, h, r, round_x, round_y) {
    tiny = 0.01;
    hull() {
        for (ix = [0, 1])
            for (iy = [0, 1]) {
                cr = (ix == round_x && iy == round_y) ? r : tiny;
                translate([cr + ix * (w - 2*cr), cr + iy * (l - 2*cr), 0])
                    cylinder(r = cr, h = h, $fn = 48);
            }
    }
}


// ============== TOP COVER v3 ==============

module top_cover() {
    translate([0, 0, z_cover_bot])
    difference() {
        union() {
            // Outer wall ring — rounded outer edges, bullnose top, rounded inner edges
            difference() {
                // Outer shell with rounded top edge
                intersection() {
                    hull() {
                        for (x = [case_corner_r, outer_wid - case_corner_r])
                            for (y = [case_corner_r, outer_len - case_corner_r]) {
                                translate([x, y, 0])
                                    cylinder(r = case_corner_r, h = cover_h - top_edge_r, $fn = 48);
                                translate([x, y, cover_h - top_edge_r])
                                    sphere(r = case_corner_r, $fn = 24);
                            }
                    }
                    // Clip bottom flat
                    cube([outer_wid, outer_len, cover_h]);
                }
                // Inner cavity with rounded corners
                translate([wall_thk, wall_thk, -0.1])
                    rounded_v_box(inner_wid, inner_len, cover_h + 0.2, plate_corner_r);
            }

            // Pillar posts — only the exposed inner corner is rounded
            for (p = pillar_xy) {
                rx = (p[0] < outer_wid/2) ? 1 : 0;
                ry = (p[1] < outer_len/2) ? 1 : 0;
                translate([p[0], p[1], 0])
                    pillar_one_round(pillar, pillar, cover_h, plate_corner_r, rx, ry);
            }
        }

        // Countersink — single rounded pocket matching plate footprint
        // Cuts into pillar tops with rounded inner corners so plate seats flush
        translate([wall_thk, wall_thk, cover_h - plate_thk])
            rounded_v_box(inner_wid, inner_len, plate_thk + 0.1, plate_corner_r);

        // Screw clearance holes through pillars
        for (p = pillar_xy) {
            cx = p[0] + pillar/2;
            cy = p[1] + pillar/2;
            translate([cx, cy, -0.1])
                cylinder(h = cover_h + 0.2, d = screw_clr);
        }
    }
}

top_cover();
